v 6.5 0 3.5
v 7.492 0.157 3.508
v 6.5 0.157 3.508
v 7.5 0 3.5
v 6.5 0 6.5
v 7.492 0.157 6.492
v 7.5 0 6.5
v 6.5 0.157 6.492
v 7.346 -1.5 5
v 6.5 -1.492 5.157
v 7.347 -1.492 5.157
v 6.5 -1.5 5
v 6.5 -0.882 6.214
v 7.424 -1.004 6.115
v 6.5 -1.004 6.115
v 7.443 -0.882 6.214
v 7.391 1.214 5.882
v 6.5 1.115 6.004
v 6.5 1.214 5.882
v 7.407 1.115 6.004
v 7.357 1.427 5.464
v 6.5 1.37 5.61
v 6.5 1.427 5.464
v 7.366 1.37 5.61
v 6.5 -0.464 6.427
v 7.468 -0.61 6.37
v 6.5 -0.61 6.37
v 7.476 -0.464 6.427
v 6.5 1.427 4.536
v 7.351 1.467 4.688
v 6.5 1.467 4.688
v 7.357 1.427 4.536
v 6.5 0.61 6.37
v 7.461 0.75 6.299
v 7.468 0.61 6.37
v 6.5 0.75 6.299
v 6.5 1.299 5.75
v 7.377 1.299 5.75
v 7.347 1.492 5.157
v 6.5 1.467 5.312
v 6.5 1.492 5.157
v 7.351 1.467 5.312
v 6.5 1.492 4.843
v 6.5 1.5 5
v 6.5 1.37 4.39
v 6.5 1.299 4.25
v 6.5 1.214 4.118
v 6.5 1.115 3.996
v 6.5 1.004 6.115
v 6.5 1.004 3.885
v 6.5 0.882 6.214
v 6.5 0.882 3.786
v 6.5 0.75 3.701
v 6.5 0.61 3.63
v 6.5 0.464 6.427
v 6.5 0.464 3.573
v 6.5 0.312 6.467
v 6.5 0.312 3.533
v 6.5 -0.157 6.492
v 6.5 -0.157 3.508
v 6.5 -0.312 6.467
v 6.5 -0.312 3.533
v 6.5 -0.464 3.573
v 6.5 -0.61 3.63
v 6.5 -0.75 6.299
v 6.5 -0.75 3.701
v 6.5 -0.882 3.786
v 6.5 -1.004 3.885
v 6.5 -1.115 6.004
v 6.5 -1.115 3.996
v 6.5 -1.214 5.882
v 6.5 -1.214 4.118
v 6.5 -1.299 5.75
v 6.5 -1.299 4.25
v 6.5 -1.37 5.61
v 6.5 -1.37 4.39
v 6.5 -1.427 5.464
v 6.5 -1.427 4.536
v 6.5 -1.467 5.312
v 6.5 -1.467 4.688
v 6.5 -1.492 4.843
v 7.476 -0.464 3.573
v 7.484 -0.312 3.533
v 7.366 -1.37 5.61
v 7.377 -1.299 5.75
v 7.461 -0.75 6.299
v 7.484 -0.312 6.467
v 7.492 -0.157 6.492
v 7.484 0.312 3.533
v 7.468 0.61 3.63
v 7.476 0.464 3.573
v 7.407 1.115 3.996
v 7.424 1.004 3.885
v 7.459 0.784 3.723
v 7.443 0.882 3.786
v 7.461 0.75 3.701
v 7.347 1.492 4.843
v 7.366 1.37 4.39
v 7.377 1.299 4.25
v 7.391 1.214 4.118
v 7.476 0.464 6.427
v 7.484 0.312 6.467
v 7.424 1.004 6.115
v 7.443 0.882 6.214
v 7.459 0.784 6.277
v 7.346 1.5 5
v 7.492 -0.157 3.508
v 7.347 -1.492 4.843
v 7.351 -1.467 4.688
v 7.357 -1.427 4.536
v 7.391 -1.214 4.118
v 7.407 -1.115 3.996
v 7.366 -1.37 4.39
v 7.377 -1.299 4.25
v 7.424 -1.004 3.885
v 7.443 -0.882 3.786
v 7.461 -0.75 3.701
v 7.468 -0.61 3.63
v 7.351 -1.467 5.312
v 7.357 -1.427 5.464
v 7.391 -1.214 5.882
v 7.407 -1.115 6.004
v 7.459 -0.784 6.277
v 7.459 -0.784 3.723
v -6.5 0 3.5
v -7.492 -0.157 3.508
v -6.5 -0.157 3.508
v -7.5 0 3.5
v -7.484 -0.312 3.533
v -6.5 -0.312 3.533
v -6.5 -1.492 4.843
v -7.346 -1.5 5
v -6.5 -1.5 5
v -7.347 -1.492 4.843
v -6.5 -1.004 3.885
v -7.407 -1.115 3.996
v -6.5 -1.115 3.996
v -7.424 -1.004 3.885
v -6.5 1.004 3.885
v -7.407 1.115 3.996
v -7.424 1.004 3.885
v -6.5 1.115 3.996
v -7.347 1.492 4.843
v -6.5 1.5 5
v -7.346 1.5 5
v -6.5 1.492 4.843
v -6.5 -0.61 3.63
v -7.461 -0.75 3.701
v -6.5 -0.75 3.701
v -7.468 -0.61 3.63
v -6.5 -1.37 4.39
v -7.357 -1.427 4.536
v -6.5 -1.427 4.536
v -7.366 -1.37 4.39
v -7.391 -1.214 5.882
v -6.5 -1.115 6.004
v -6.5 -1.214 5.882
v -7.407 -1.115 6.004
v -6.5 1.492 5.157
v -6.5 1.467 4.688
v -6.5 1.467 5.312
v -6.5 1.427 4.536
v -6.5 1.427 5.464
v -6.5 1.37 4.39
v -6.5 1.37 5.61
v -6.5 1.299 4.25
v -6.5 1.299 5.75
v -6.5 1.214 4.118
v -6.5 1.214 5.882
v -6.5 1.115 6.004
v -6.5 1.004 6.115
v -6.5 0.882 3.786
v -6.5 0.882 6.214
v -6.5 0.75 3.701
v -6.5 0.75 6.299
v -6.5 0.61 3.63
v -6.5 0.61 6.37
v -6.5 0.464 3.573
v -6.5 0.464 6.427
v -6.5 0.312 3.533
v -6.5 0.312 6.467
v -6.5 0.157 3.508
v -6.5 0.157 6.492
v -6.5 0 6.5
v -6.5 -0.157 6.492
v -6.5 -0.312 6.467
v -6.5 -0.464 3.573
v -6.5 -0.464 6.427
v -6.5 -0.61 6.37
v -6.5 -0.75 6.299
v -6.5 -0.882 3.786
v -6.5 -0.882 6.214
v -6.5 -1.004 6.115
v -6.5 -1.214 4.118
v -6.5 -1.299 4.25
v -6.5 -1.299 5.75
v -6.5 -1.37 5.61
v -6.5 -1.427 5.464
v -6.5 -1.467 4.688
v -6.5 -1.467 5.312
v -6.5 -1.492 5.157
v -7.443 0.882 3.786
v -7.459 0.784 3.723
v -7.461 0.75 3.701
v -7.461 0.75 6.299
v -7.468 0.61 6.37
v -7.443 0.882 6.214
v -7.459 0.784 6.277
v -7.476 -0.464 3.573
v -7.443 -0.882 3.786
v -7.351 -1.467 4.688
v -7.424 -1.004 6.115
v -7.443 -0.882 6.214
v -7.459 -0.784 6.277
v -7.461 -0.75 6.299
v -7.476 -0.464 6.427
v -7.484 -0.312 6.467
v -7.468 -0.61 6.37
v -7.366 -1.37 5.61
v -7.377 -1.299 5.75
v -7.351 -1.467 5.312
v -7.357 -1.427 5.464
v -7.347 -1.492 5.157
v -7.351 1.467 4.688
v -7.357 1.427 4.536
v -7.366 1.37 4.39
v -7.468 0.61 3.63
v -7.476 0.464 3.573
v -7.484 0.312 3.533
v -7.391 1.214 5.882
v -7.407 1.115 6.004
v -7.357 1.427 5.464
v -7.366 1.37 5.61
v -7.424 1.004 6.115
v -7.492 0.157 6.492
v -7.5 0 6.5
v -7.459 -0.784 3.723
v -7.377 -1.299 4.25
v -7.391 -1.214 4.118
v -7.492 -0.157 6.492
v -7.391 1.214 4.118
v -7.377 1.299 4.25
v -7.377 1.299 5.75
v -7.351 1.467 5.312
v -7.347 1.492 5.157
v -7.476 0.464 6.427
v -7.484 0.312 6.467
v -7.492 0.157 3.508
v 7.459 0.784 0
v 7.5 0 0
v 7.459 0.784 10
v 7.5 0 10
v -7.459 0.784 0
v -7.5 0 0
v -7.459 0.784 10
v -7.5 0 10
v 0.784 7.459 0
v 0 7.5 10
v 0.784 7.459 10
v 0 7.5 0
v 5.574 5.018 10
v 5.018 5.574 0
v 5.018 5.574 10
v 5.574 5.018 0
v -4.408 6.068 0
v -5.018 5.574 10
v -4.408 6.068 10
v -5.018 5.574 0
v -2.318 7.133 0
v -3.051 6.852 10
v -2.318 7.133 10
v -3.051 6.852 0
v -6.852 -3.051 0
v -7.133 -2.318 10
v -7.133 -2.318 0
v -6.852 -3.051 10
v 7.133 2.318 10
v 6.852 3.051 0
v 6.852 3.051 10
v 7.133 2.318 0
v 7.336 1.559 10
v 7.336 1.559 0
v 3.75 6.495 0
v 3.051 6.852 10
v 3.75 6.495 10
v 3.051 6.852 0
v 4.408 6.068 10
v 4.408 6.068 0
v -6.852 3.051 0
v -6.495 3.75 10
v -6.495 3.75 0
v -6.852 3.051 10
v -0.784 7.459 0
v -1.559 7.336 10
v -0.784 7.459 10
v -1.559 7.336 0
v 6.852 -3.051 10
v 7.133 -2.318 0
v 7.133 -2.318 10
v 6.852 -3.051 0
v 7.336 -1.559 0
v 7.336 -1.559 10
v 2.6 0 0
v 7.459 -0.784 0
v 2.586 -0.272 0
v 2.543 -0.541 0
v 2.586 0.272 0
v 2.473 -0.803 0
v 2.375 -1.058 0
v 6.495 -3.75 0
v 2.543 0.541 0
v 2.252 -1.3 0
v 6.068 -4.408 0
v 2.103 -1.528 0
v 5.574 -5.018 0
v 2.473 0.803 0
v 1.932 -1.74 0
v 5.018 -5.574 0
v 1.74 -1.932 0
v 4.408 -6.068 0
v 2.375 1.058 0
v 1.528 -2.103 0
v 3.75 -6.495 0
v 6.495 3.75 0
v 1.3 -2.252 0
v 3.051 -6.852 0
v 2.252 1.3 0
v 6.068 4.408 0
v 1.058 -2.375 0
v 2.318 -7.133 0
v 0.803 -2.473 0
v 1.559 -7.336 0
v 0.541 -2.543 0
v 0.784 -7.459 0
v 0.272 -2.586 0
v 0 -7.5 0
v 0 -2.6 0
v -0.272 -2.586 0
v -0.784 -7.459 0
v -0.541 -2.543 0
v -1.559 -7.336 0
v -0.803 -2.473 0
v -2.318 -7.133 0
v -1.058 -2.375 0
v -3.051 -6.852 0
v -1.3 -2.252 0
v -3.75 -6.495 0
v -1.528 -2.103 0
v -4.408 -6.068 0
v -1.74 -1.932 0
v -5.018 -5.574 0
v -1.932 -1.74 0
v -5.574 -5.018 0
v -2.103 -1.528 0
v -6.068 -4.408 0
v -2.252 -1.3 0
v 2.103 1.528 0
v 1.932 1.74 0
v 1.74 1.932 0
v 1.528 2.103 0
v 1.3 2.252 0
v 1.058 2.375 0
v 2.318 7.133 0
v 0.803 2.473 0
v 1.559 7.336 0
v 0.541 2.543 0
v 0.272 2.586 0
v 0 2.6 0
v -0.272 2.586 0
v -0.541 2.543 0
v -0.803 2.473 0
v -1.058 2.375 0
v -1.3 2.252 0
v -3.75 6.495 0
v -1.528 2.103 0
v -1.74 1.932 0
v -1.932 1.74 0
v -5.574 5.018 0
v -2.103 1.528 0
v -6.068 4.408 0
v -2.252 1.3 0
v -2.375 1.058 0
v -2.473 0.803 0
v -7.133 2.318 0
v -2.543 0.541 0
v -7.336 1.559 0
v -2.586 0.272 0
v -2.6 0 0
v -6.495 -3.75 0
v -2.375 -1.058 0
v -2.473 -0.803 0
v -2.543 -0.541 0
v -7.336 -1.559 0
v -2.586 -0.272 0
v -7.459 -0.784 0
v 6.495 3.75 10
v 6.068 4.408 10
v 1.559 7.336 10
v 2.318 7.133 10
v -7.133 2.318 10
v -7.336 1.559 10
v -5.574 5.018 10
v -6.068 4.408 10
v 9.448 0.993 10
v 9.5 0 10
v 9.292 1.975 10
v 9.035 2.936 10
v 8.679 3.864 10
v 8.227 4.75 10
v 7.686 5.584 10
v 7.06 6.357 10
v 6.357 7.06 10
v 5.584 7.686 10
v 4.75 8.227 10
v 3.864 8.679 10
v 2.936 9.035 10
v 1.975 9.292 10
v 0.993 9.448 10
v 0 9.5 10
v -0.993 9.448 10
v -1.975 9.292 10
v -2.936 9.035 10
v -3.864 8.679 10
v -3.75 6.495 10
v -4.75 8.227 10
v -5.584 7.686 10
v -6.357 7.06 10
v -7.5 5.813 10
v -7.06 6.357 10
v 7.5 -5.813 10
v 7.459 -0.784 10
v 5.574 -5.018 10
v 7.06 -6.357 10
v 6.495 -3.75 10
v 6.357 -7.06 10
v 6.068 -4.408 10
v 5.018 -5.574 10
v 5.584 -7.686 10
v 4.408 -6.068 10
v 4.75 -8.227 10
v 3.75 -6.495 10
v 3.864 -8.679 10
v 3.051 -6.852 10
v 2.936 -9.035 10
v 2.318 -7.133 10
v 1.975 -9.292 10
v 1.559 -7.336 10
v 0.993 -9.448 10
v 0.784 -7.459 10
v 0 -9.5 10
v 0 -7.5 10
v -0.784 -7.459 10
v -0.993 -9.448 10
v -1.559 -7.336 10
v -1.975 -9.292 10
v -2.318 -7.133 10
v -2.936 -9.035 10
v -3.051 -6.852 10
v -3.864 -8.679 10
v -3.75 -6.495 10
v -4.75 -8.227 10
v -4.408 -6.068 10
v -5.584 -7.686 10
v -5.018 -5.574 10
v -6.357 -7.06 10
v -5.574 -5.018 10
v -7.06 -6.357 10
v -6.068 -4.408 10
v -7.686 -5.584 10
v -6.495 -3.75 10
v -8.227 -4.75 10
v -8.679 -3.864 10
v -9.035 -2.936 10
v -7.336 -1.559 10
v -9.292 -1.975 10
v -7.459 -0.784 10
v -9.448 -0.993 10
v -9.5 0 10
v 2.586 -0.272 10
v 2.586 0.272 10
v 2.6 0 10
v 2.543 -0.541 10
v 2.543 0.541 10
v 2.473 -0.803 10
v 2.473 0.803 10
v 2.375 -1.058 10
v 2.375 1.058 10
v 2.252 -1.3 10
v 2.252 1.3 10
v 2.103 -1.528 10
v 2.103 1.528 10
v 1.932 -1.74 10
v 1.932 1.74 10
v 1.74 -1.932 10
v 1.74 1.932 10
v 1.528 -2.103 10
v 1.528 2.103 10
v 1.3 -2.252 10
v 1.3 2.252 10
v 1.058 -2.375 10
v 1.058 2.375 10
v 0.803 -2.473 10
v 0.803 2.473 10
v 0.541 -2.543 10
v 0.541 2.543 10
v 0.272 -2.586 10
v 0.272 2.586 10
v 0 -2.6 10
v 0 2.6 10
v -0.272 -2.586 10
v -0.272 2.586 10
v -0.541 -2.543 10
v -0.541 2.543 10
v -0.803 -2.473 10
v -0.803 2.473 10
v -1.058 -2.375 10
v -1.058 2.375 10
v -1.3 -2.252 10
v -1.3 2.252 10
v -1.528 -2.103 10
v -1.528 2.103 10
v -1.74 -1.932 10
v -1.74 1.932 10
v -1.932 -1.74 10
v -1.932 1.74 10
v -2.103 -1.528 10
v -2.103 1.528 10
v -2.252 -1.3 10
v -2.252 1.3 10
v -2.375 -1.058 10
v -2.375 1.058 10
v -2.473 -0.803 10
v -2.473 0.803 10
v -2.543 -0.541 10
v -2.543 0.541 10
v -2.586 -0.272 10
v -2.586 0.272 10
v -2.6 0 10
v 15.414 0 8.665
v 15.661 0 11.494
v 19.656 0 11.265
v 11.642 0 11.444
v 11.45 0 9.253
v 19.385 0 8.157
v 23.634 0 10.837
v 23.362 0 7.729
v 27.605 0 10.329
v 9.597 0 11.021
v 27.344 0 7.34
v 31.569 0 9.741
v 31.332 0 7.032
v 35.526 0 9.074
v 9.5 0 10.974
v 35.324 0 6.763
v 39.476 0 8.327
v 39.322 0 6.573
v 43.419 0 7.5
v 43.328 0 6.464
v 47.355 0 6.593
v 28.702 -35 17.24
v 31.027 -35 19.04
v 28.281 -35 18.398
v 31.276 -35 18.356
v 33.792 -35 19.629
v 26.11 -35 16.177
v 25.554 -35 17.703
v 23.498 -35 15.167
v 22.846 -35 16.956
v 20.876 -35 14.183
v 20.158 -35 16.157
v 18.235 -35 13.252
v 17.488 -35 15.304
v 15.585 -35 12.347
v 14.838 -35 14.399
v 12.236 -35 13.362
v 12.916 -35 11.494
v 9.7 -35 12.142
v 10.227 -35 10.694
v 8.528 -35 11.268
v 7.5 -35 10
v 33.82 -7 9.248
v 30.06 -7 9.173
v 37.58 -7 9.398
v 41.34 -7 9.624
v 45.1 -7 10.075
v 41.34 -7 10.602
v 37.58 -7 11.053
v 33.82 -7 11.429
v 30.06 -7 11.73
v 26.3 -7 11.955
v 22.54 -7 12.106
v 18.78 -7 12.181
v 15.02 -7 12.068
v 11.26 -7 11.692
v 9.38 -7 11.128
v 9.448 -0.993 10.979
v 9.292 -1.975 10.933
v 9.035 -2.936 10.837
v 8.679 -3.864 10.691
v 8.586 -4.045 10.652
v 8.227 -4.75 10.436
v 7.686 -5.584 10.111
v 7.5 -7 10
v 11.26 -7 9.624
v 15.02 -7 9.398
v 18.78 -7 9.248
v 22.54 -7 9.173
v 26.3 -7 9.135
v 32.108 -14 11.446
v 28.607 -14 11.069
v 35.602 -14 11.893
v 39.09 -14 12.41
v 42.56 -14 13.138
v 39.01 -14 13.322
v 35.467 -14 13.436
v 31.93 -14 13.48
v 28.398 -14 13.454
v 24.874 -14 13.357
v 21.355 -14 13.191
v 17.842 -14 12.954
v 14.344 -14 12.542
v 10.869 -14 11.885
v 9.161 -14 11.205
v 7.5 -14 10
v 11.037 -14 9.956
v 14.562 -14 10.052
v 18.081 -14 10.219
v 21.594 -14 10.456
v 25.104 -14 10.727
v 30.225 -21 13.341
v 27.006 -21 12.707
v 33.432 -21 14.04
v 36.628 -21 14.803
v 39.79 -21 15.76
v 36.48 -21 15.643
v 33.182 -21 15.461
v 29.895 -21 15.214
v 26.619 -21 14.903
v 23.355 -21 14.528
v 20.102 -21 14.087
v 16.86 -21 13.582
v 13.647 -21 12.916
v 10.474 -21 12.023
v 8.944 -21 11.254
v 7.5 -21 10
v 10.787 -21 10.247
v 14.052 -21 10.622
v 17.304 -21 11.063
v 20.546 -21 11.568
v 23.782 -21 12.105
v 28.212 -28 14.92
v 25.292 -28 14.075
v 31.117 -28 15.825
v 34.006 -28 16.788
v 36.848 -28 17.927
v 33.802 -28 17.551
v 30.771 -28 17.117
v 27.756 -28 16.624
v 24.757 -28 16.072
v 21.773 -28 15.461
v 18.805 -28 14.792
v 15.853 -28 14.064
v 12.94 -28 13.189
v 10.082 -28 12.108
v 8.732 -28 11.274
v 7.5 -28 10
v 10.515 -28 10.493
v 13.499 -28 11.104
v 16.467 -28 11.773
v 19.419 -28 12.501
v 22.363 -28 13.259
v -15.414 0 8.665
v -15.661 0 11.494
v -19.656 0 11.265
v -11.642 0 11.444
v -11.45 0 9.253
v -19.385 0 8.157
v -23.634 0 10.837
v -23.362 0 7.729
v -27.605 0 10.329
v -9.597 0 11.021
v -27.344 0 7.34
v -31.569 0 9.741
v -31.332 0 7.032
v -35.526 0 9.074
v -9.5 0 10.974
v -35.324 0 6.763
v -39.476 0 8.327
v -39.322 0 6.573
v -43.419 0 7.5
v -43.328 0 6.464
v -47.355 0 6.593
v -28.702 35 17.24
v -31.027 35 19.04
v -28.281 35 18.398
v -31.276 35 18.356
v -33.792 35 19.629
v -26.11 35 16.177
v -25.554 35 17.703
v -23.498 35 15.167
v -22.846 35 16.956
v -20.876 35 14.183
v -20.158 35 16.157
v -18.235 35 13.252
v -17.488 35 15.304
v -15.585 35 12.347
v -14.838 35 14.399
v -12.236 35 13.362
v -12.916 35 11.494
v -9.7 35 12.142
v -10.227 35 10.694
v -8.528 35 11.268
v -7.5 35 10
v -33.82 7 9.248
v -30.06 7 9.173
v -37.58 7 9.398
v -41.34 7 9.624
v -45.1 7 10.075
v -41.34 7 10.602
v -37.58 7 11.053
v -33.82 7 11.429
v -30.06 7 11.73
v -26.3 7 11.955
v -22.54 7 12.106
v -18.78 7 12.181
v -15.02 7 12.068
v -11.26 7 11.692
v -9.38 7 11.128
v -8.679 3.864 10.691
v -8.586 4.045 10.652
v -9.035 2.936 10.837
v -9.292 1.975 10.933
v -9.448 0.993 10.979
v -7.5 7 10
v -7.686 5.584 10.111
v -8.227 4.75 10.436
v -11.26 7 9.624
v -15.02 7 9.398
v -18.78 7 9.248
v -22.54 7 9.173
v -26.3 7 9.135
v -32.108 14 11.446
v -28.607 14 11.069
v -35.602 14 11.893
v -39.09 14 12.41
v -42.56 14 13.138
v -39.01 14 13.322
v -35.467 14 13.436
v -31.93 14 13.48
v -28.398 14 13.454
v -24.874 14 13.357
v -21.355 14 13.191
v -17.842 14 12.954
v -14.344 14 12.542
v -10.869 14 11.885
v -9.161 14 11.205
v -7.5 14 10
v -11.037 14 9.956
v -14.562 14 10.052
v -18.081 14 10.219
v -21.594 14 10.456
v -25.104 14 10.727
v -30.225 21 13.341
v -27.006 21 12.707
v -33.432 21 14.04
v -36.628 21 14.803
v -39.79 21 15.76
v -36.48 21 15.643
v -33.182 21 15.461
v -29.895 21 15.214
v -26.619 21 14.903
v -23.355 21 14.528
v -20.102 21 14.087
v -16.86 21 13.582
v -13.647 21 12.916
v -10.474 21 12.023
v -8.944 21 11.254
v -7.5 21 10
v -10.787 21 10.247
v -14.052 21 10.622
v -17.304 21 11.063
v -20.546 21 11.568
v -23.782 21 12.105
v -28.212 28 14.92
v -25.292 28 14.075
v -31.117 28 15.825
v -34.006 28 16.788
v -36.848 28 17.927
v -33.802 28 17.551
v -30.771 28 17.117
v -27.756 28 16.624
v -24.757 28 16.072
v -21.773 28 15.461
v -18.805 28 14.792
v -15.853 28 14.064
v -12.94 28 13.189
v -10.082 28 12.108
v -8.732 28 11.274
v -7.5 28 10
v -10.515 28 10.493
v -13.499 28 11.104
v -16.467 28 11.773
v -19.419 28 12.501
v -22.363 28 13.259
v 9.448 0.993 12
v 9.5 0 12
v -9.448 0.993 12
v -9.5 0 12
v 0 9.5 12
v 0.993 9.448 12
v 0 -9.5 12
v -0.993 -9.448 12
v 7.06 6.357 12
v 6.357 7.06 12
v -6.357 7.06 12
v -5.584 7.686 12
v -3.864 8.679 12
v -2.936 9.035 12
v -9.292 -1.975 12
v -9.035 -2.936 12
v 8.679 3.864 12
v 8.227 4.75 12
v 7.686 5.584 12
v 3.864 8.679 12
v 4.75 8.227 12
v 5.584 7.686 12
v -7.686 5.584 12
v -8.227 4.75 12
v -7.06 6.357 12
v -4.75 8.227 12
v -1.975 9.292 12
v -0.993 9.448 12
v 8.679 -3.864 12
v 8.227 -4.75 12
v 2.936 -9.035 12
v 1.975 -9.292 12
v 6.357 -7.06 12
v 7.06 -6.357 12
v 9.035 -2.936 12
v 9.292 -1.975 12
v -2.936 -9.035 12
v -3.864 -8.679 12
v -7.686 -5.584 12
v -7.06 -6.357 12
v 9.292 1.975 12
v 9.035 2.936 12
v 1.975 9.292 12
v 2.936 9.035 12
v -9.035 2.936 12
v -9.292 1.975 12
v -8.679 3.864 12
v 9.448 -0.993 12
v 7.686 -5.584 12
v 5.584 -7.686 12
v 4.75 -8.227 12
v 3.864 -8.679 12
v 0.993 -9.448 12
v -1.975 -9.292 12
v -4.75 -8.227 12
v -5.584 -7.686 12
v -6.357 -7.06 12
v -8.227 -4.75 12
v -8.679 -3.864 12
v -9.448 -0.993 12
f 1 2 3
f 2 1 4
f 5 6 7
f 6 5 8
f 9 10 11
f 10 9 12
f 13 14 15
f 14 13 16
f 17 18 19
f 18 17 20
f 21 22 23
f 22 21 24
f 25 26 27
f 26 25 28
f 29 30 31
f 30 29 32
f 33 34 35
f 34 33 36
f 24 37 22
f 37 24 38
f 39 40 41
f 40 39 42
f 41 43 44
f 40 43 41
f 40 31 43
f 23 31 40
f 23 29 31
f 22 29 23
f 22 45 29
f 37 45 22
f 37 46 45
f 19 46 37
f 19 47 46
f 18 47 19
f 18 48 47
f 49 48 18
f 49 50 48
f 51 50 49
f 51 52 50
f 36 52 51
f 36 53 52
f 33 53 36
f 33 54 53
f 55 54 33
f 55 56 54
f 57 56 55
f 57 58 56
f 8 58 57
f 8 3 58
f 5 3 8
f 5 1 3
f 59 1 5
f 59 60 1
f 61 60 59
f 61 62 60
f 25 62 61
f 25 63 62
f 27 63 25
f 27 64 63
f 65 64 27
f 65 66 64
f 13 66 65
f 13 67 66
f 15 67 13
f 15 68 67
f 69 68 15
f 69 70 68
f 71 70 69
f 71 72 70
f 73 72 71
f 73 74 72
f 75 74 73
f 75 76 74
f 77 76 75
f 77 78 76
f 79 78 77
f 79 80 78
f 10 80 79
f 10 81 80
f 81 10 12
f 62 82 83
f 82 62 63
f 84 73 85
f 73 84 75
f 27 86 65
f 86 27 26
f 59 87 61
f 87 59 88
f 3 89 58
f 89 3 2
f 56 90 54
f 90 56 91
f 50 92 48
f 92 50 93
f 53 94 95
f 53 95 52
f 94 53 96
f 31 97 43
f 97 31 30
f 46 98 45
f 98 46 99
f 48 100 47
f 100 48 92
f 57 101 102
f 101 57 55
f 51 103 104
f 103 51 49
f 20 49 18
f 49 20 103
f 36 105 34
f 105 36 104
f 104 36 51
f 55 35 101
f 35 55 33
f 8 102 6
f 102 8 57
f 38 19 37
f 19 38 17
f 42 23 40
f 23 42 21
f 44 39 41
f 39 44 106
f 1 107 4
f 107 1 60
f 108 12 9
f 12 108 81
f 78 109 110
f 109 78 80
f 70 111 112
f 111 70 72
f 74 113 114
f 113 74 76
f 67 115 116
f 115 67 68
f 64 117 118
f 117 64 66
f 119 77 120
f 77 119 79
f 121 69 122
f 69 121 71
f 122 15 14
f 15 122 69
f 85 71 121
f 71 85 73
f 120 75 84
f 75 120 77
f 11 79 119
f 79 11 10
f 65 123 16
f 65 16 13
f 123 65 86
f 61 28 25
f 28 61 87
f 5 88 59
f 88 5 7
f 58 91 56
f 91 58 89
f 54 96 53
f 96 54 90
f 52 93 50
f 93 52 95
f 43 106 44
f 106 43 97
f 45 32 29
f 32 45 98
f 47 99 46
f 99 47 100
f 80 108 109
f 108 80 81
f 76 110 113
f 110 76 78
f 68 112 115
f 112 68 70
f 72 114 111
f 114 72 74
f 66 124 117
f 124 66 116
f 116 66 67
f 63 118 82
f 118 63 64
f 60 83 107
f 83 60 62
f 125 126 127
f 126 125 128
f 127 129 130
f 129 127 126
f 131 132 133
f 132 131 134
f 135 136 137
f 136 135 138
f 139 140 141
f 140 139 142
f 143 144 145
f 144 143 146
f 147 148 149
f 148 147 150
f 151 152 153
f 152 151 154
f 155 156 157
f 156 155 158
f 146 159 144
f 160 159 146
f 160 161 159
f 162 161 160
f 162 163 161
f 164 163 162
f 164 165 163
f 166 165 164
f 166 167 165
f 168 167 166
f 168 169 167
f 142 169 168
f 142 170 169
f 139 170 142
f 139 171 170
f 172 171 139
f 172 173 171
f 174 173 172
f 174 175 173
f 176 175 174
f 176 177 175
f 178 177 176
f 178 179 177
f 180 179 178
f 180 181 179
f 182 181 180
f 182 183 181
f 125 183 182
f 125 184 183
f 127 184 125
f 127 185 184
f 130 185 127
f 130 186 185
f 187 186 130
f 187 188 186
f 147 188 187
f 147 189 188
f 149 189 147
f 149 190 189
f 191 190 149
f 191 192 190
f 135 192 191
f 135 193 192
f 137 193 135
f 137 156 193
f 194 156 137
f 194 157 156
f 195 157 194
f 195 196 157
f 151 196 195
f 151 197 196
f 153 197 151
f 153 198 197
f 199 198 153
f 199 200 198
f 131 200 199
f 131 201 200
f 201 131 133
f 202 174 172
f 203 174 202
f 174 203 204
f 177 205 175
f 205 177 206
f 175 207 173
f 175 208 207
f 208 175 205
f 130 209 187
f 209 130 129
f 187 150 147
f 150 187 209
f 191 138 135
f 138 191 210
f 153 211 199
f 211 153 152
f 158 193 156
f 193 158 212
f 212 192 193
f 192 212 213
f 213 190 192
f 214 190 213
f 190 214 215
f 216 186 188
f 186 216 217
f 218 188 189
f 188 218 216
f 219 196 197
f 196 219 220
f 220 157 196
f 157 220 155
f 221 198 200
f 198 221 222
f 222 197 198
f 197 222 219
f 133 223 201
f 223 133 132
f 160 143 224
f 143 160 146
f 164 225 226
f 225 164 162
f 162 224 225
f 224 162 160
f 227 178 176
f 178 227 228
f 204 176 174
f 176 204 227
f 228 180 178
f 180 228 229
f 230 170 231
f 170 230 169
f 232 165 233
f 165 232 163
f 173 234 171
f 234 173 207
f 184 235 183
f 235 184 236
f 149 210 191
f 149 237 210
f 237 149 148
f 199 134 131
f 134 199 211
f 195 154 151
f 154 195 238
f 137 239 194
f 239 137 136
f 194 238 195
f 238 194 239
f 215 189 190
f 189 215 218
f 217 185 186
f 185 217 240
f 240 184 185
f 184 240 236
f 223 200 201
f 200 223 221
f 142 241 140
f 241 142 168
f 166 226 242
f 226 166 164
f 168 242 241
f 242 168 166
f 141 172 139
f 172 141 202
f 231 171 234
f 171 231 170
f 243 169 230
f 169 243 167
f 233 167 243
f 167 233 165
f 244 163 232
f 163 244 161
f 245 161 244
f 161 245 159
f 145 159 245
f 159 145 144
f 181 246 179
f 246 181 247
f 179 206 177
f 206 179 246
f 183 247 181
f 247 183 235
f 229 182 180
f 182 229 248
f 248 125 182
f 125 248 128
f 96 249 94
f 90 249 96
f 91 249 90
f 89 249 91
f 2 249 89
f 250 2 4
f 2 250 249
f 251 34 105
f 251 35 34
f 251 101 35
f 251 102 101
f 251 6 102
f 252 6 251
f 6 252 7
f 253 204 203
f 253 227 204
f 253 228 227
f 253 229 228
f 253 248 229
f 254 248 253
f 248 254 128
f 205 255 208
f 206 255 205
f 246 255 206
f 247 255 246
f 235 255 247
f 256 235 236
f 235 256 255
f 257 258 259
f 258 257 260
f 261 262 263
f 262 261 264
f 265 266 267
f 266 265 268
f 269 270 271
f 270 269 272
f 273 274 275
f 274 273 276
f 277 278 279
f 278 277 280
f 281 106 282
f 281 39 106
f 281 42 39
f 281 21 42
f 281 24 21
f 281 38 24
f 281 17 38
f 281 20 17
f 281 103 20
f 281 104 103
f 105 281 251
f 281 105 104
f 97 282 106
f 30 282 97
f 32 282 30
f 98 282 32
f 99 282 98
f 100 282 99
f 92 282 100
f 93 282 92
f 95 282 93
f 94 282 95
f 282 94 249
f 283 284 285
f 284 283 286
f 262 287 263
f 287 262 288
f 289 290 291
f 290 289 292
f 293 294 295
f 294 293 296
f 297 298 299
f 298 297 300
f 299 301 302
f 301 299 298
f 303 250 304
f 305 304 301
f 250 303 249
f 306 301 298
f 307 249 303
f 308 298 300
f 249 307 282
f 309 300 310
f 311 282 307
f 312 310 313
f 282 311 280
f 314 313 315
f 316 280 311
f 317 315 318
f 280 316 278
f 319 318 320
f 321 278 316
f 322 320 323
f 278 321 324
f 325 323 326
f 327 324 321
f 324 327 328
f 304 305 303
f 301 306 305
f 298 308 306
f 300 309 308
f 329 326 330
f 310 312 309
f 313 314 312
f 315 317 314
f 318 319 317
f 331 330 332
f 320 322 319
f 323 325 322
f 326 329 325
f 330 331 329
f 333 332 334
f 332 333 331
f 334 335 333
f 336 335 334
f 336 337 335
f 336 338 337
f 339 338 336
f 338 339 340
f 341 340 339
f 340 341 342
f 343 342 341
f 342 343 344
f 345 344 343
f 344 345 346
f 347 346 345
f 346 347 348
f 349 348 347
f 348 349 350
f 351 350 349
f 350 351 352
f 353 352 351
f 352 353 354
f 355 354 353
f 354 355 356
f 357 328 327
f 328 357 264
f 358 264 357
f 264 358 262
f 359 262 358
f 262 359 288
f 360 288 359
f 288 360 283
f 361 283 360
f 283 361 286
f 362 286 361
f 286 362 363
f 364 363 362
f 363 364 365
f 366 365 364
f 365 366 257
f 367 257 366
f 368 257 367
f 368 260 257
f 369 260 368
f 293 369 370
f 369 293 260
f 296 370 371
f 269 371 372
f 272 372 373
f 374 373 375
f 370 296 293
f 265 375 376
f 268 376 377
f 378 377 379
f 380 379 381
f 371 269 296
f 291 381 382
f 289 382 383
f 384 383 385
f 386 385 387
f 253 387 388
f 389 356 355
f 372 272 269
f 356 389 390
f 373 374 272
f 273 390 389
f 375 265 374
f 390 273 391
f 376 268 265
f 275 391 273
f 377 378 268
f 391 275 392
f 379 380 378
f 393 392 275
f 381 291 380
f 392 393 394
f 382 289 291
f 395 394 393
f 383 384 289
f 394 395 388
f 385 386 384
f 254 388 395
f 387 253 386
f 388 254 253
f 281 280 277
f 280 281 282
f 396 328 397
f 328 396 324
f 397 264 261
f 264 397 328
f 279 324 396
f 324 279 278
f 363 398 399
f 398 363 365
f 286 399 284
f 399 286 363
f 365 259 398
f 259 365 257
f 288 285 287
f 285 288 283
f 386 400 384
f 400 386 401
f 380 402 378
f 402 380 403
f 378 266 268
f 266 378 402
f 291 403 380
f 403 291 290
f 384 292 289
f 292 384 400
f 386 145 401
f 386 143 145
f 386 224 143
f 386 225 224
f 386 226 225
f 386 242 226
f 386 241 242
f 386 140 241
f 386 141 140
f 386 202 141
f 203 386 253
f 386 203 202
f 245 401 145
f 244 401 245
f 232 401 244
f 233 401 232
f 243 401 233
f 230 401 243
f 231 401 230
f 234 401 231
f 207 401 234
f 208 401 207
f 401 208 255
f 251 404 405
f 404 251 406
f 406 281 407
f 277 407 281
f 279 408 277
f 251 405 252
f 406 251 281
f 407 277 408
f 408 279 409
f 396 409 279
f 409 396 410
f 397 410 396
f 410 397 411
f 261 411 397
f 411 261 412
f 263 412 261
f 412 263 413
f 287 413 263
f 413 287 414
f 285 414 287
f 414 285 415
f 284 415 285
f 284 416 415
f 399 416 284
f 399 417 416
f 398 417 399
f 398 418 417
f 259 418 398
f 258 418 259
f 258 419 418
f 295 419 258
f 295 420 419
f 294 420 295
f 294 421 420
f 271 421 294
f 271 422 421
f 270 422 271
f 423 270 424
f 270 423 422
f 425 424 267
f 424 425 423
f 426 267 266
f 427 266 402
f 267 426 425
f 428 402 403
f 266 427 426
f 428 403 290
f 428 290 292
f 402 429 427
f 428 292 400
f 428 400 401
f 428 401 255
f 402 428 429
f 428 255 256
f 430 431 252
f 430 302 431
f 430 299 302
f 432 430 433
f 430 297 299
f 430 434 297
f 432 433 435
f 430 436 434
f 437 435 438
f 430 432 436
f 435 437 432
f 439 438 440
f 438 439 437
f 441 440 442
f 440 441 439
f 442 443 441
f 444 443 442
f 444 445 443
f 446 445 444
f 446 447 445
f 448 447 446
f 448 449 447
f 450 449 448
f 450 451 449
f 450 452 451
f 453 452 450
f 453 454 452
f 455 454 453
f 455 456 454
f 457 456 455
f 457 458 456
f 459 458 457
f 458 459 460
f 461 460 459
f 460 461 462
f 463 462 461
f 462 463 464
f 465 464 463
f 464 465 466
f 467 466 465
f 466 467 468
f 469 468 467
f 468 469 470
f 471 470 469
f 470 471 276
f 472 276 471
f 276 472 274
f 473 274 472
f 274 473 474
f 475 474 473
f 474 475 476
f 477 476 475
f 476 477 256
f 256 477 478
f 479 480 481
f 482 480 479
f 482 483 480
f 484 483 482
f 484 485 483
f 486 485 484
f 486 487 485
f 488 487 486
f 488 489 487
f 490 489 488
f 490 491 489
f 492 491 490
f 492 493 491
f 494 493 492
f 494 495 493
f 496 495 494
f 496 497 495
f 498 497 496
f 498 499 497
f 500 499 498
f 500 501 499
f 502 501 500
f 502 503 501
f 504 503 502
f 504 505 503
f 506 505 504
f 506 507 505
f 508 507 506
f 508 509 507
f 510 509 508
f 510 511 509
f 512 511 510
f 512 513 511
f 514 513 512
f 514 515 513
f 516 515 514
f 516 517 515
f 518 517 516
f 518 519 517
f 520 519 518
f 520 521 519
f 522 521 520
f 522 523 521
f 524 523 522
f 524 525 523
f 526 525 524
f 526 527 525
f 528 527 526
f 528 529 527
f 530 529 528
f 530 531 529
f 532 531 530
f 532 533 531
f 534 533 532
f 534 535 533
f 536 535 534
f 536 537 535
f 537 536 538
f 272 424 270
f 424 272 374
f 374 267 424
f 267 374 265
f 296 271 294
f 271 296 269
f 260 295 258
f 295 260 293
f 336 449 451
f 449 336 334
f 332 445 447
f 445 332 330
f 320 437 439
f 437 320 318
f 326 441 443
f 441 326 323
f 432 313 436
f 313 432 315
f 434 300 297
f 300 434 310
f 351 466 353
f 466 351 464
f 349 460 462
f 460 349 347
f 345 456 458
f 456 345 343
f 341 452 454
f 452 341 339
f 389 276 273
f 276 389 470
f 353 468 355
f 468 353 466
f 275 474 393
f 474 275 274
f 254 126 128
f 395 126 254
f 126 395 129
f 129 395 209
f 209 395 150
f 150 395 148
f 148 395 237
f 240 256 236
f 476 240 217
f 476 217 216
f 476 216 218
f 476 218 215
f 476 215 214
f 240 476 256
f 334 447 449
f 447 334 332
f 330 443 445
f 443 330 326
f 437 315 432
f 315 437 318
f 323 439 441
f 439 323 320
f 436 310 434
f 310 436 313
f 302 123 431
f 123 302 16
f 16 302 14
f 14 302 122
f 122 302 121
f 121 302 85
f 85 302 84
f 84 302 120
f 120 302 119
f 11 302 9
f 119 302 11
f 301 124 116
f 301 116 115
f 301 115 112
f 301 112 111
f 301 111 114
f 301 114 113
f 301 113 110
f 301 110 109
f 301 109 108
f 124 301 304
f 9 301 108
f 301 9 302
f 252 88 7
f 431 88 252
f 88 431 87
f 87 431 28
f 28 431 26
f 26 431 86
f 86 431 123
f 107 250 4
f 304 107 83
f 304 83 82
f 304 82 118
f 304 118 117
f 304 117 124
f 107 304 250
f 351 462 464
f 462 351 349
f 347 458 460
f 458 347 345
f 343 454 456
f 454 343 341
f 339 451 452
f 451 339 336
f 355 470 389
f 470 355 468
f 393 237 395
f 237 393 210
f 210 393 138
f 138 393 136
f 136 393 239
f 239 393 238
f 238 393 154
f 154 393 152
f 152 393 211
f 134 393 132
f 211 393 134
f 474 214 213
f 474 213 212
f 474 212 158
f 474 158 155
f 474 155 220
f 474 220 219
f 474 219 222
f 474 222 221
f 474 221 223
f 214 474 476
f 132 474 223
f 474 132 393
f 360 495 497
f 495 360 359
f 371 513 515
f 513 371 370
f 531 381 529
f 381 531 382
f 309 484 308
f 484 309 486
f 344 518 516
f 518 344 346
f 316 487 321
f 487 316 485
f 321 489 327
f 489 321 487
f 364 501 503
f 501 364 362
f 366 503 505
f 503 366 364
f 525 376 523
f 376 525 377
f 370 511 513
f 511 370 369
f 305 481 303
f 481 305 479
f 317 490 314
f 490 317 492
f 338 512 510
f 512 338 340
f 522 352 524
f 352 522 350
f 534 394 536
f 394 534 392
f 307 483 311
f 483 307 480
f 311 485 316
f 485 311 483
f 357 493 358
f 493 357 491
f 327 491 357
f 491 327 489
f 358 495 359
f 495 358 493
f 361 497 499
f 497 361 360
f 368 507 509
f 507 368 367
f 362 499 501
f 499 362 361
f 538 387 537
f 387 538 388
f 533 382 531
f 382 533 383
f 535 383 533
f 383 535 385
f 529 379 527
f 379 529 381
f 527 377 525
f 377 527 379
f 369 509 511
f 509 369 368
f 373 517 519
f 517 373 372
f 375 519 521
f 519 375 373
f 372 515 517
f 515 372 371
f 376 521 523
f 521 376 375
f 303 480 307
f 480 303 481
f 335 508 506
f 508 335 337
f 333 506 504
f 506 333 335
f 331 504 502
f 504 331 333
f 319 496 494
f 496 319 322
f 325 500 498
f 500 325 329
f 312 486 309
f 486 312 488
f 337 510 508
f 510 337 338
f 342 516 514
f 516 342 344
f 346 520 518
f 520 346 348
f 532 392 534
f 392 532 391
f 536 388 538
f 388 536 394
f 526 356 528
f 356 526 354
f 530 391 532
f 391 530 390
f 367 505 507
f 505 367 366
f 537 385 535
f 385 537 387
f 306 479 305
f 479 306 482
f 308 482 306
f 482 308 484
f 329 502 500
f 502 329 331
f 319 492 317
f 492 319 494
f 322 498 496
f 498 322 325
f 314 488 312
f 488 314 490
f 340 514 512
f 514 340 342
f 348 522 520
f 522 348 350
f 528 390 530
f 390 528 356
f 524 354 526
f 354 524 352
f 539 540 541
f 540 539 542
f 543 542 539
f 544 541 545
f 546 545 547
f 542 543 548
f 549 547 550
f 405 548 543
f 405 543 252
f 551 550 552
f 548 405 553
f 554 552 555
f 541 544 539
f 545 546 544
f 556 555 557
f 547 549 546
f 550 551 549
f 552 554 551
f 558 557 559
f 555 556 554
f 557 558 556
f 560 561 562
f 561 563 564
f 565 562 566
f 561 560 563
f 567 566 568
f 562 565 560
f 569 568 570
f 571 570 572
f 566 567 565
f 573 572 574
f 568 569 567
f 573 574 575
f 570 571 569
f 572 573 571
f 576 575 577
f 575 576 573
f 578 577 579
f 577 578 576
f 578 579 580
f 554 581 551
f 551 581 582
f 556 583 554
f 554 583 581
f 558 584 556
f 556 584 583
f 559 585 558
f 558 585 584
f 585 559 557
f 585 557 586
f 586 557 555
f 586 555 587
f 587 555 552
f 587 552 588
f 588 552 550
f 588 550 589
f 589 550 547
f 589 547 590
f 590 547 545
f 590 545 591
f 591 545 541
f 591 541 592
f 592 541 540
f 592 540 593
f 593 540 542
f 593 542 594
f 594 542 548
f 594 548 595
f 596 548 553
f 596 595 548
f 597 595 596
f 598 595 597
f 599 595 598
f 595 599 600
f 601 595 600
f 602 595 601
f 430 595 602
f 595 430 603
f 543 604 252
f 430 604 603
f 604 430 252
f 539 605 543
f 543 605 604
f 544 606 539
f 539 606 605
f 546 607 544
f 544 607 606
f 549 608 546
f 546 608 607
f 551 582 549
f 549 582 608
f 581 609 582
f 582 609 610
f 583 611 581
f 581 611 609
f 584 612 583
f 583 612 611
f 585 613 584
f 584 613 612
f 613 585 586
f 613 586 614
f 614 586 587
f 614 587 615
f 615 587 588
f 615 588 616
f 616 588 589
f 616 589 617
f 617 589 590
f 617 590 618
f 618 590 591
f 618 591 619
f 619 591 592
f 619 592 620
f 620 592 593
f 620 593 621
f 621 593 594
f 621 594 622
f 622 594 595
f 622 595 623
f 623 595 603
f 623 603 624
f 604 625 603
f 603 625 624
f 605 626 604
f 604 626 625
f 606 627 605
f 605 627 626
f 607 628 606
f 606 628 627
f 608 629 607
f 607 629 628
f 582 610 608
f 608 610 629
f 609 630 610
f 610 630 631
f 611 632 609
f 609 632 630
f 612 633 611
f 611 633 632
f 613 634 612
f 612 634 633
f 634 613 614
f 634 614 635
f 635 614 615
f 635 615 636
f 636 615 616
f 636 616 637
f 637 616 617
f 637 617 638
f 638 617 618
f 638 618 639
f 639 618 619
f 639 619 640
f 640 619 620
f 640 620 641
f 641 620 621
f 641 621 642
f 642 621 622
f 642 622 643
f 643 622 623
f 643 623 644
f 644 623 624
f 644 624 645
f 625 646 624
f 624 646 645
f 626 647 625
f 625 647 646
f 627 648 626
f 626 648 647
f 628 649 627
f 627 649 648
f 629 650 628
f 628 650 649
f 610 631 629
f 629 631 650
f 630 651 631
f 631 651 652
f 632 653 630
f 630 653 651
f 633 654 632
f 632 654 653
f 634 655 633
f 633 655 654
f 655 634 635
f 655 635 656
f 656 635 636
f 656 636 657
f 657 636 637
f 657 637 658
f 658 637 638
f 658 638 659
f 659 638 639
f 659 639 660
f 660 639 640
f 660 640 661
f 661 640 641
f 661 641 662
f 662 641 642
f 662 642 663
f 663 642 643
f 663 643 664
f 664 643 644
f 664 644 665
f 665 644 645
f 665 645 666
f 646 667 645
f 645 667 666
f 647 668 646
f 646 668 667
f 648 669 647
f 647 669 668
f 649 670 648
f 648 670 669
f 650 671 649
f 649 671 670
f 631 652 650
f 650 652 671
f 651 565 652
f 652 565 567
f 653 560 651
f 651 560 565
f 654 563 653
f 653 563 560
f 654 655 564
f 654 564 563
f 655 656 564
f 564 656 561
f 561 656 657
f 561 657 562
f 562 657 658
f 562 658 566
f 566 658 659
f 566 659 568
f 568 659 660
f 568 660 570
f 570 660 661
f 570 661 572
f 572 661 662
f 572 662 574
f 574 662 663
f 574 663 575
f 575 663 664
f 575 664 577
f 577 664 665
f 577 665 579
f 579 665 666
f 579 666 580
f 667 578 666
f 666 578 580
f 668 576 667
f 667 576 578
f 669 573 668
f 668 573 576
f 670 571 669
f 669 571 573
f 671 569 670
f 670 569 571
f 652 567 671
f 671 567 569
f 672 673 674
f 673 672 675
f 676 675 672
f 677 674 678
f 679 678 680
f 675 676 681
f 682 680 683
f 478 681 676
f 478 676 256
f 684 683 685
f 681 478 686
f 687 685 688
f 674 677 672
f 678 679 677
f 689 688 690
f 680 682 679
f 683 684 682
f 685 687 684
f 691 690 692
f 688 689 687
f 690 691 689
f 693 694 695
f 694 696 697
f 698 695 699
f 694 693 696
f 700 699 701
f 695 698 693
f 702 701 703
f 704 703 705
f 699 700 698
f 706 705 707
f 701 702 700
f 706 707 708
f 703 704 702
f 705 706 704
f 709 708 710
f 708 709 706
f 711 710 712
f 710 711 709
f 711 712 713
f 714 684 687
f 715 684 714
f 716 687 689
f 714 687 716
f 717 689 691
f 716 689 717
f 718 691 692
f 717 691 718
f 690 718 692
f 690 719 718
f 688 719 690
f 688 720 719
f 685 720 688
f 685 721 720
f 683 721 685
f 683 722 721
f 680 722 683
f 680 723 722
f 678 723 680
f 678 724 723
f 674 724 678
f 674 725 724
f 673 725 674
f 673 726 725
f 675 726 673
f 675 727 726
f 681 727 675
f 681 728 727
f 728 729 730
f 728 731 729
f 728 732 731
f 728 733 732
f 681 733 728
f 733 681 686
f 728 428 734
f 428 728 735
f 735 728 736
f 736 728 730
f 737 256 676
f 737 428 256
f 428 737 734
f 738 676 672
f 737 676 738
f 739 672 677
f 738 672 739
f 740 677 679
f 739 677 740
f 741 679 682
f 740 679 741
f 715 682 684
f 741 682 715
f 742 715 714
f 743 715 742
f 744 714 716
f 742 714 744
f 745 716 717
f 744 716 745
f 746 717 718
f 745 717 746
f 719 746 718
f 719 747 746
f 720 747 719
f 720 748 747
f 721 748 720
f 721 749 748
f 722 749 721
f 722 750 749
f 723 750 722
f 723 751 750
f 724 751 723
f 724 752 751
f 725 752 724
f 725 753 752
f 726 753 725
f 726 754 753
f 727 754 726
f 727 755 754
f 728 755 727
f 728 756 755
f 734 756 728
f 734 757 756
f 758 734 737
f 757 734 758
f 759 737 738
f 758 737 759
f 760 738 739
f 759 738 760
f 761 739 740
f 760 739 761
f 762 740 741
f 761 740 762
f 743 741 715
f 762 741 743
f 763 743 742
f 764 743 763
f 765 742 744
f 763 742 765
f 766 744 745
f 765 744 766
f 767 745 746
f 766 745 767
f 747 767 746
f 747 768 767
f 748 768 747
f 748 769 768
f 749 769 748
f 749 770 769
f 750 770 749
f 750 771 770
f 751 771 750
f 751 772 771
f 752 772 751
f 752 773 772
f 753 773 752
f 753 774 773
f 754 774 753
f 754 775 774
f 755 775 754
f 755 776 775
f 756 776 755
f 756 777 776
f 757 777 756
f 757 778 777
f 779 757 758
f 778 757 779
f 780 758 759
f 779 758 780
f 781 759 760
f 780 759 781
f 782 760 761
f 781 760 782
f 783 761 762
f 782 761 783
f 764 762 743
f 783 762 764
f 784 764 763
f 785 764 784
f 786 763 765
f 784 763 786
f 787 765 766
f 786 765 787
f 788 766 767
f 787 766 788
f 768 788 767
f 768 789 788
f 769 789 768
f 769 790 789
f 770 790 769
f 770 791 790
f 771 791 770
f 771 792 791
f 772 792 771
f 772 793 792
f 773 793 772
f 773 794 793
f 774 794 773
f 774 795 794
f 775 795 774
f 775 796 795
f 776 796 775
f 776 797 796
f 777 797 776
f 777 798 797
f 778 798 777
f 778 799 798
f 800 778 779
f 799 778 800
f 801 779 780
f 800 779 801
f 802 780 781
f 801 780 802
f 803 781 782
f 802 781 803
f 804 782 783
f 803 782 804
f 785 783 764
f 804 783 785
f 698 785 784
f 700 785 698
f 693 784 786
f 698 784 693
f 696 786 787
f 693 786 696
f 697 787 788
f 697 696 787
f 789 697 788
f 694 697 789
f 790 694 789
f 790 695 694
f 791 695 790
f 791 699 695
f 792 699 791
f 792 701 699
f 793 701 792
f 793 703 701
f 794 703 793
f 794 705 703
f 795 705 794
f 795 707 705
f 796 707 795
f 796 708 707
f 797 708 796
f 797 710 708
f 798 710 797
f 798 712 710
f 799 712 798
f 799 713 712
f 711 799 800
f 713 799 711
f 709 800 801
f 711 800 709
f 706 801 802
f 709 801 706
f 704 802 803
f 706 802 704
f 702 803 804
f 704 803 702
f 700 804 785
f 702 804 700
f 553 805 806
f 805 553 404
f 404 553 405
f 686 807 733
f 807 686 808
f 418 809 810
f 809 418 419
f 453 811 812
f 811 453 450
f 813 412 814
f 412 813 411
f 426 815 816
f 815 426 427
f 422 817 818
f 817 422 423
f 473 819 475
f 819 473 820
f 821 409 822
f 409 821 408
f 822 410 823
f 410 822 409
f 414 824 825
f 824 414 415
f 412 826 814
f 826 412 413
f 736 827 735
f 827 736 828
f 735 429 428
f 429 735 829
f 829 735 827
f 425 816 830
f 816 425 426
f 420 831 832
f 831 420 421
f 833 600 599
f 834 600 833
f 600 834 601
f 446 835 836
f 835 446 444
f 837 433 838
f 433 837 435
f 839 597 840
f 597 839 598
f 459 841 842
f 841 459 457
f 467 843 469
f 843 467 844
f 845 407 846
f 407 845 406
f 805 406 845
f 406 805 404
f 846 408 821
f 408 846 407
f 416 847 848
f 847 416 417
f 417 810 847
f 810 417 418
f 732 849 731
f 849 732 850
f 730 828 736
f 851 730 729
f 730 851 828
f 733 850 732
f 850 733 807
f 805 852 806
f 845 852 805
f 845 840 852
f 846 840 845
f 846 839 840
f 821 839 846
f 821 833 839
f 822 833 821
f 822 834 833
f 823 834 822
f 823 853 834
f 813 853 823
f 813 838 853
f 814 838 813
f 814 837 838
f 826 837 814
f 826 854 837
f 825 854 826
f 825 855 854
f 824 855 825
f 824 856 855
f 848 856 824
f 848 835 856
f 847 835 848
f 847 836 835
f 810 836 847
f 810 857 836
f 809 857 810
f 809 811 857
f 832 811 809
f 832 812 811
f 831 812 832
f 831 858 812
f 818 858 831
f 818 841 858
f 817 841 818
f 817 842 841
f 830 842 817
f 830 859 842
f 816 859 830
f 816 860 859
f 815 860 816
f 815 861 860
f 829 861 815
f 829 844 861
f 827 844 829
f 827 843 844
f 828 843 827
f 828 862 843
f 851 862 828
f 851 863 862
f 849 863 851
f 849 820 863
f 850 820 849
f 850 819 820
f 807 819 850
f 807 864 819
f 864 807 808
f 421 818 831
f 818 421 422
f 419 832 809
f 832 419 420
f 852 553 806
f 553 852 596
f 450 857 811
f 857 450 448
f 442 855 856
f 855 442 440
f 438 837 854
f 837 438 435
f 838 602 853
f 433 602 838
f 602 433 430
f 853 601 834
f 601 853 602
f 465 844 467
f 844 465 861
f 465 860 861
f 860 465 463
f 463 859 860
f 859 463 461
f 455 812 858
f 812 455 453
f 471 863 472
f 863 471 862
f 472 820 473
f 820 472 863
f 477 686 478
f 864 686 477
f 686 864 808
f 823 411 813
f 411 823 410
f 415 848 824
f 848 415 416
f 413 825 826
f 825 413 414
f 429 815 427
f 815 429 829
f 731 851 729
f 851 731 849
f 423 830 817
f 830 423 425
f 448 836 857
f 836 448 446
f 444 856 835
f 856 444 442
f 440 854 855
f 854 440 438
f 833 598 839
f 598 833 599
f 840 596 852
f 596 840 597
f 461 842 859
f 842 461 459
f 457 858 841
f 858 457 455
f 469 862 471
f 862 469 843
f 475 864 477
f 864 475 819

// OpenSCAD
/*
 * COMPLETE MOTOR + IMPELLER ASSEMBLY
 * For CFD fluid testing and visualization
 * 
 * This model includes:
 *   - Brushless motor (2204-2206 size)
 *   - Motor shaft (5mm)
 *   - Impeller hub
 *   - 3 impeller variants (bladeless, AI-blades, hybrid)
 *   - Mounting plate
 * 
 * Usage:
 *   - Render full assembly: F6
 *   - Export for CFD: Set EXPORT_MODE = "impeller_only"
 *   - Change design: Set IMPELLER_TYPE = "bladeless" | "bladed" | "hybrid"
 */

// ============================================================================
// CONFIGURATION PARAMETERS (AI-Optimizable)
// ============================================================================

// General Settings
$fn = 60;  // Resolution for CFD export (increase to 100 for final)

// Export Mode
EXPORT_MODE = "impeller_only";  // Options: "full_assembly", "impeller_only", "motor_only"

// Impeller Type
IMPELLER_TYPE = "bladed";  // Options: "bladeless", "bladed", "hybrid"

// Motor Specifications (2204-2206 brushless)
MOTOR_DIAMETER = 28;         // mm
MOTOR_HEIGHT = 25;           // mm
MOTOR_SHAFT_DIAMETER = 5;    // mm (standard)
MOTOR_SHAFT_LENGTH = 15;     // mm (extends above motor)
MOTOR_MOUNT_PATTERN = 16;    // mm (16x16 or 19x19 common)
MOTOR_SCREW_DIAMETER = 3;    // M3 screws

// Impeller Parameters - BLADELESS
BLADELESS_OUTER_DIAMETER = 90;    // mm
BLADELESS_AIR_GAP = 0.8;          // mm (optimize: 0.6-1.2)
BLADELESS_THROAT_RATIO = 0.72;    // (optimize: 0.65-0.80)
BLADELESS_EXPANSION_ANGLE = 18;   // degrees (optimize: 12-25)
BLADELESS_RING_THICKNESS = 3;     // mm (optimize: 2-4)
BLADELESS_HEIGHT = 24;            // mm

// Impeller Parameters - BLADED
BLADED_DIAMETER = 85;
BLADED_HUB_DIAMETER = 15;         // mm (optimize: 12-20)
BLADED_BLADE_COUNT = 2;
BLADED_ROOT_CHORD = 40;
BLADED_TIP_CHORD_RATIO = 0.7;    // (optimize: 0.6-0.8)
BLADED_BLADE_THICKNESS = 2;       // mm (optimize: 1.5-3)
BLADED_BLADE_TWIST = -25;
BLADED_ATTACK_ANGLE = -5;
BLADED_BLADE_HEIGHT = 12;         // mm (optimize: 10-15)

// Hub Parameters
HUB_DIAMETER = 15;
HUB_HEIGHT = 10;
HUB_SET_SCREW_DIAMETER = 3;  // M3 set screw

// Mounting Plate
PLATE_SIZE = 50;
PLATE_THICKNESS = 3;

// ============================================================================
// MOTOR MODEL
// ============================================================================

module brushless_motor_2204() {
    color("DarkSlateGray") {
        // Motor can (bell)
        difference() {
            cylinder(h=MOTOR_HEIGHT, d=MOTOR_DIAMETER);
            
            // Hollow inside (weight reduction visualization)
            translate([0, 0, -0.5])
                cylinder(h=MOTOR_HEIGHT - 5, d=MOTOR_DIAMETER - 4);
            
            // Mounting holes
            for(i = [0:3]) {
                rotate([0, 0, i * 90])
                    translate([MOTOR_MOUNT_PATTERN/2, 0, MOTOR_HEIGHT/2])
                        rotate([90, 0, 0])
                            cylinder(h=MOTOR_DIAMETER, d=MOTOR_SCREW_DIAMETER, center=true);
            }
        }
        
        // Motor base
        translate([0, 0, -3])
            cylinder(h=3, d=MOTOR_DIAMETER - 2);
    }
    
    // Motor shaft
    color("Silver")
        translate([0, 0, MOTOR_HEIGHT])
            cylinder(h=MOTOR_SHAFT_LENGTH, d=MOTOR_SHAFT_DIAMETER);
    
    // Shaft tip (for hub attachment)
    color("Silver")
        translate([0, 0, MOTOR_HEIGHT + MOTOR_SHAFT_LENGTH])
            cylinder(h=2, d=MOTOR_SHAFT_DIAMETER - 0.5);
}

// ============================================================================
// IMPELLER HUB
// ============================================================================

module impeller_hub() {
    color("Gray")
    difference() {
        // Hub body
        cylinder(h=HUB_HEIGHT, d=HUB_DIAMETER);
        
        // Shaft hole (5mm + 0.2mm clearance)
        translate([0, 0, -0.5])
            cylinder(h=HUB_HEIGHT + 1, d=MOTOR_SHAFT_DIAMETER + 0.2);
        
        // Set screw holes (2x for balance)
        for(i = [0:1]) {
            rotate([0, 0, i * 180])
                translate([HUB_DIAMETER/2 - 1, 0, HUB_HEIGHT/2])
                    rotate([0, 90, 0])
                        cylinder(h=5, d=HUB_SET_SCREW_DIAMETER);
        }
    }
}

// ============================================================================
// BLADELESS IMPELLER (Dyson-style)
// ============================================================================

module bladeless_impeller() {
    outer_r = BLADELESS_OUTER_DIAMETER / 2;
    throat_r = outer_r * BLADELESS_THROAT_RATIO;
    gap = BLADELESS_AIR_GAP;
    
    color("SkyBlue", 0.7)
    difference() {
        // Outer ring
        rotate_extrude()
            translate([outer_r - BLADELESS_RING_THICKNESS/2, BLADELESS_HEIGHT/2, 0])
                circle(d=BLADELESS_RING_THICKNESS + BLADELESS_HEIGHT);
        
        // Inner air gap (critical for Coanda effect)
        rotate_extrude()
            translate([outer_r - gap - BLADELESS_RING_THICKNESS/2, BLADELESS_HEIGHT/2, 0])
                circle(d=BLADELESS_RING_THICKNESS + BLADELESS_HEIGHT - 2*gap);
    }
    
    // Base plate (connects to hub)
    color("SkyBlue", 0.7)
    translate([0, 0, -2])
        difference() {
            cylinder(h=2, d=outer_r * 2);
            translate([0, 0, -0.5])
                cylinder(h=3, d=HUB_DIAMETER + 1);
        }
    
    // Air inlet (bell-shaped for smooth flow)
    color("SkyBlue", 0.7)
    translate([0, 0, -2]) {
        difference() {
            cylinder(h=15, d1=throat_r * 2, d2=outer_r * 1.8);
            translate([0, 0, -0.5])
                cylinder(h=16, d1=throat_r * 2 - 3, d2=outer_r * 1.8 - 3);
        }
    }
}

// ============================================================================
// AI-OPTIMIZED BLADED IMPELLER (NACA 2412 profile)
// ============================================================================

module naca_2412_blade(chord, height, twist_angle, attack_angle) {
    // Simplified NACA 2412 airfoil profile
    // Using parametric approximation for 3D printing
    
    color("LightSteelBlue", 0.8)
    linear_extrude(height=height, twist=twist_angle, scale=BLADED_TIP_CHORD_RATIO) {
        rotate([0, 0, attack_angle])
        polygon([
            // Upper surface (cambered)
            [0, 0],
            [chord * 0.05, chord * 0.03],
            [chord * 0.1, chord * 0.045],
            [chord * 0.2, chord * 0.055],
            [chord * 0.3, chord * 0.058],
            [chord * 0.4, chord * 0.056],
            [chord * 0.5, chord * 0.052],
            [chord * 0.6, chord * 0.046],
            [chord * 0.7, chord * 0.038],
            [chord * 0.8, chord * 0.028],
            [chord * 0.9, chord * 0.016],
            [chord * 1.0, chord * 0.002],
            // Lower surface (less cambered)
            [chord * 0.9, -chord * 0.010],
            [chord * 0.8, -chord * 0.016],
            [chord * 0.7, -chord * 0.020],
            [chord * 0.6, -chord * 0.022],
            [chord * 0.5, -chord * 0.023],
            [chord * 0.4, -chord * 0.022],
            [chord * 0.3, -chord * 0.020],
            [chord * 0.2, -chord * 0.016],
            [chord * 0.1, -chord * 0.010],
            [chord * 0.05, -chord * 0.005],
        ]);
    }
}

module bladed_impeller() {
    // Blades
    for(i = [0 : BLADED_BLADE_COUNT - 1]) {
        rotate([0, 0, i * (360 / BLADED_BLADE_COUNT)])
            translate([BLADED_HUB_DIAMETER/2, 0, 0])
                rotate([90, 0, 0])
                    naca_2412_blade(
                        BLADED_ROOT_CHORD, 
                        (BLADED_DIAMETER - BLADED_HUB_DIAMETER) / 2,
                        BLADED_BLADE_TWIST,
                        BLADED_ATTACK_ANGLE
                    );
    }
    
    // Hub disk (connects blades)
    color("LightSteelBlue", 0.8)
    cylinder(h=2, d=BLADED_HUB_DIAMETER + 4);
}

// ============================================================================
// HYBRID IMPELLER (Blades inside bladeless ring)
// ============================================================================

module hybrid_impeller() {
    // Outer bladeless ring
    bladeless_impeller();
    
    // Inner bladed impeller (scaled down to fit)
    scale([0.85, 0.85, 1])
        bladed_impeller();
}

// ============================================================================
// MOUNTING PLATE
// ============================================================================

module mounting_plate() {
    color("DimGray")
    difference() {
        // Base plate
        translate([-PLATE_SIZE/2, -PLATE_SIZE/2, 0])
            cube([PLATE_SIZE, PLATE_SIZE, PLATE_THICKNESS]);
        
        // Center hole for motor shaft
        translate([0, 0, -0.5])
            cylinder(h=PLATE_THICKNESS + 1, d=MOTOR_DIAMETER + 2);
        
        // Motor mounting holes
        for(i = [0:3]) {
            rotate([0, 0, i * 90])
                translate([MOTOR_MOUNT_PATTERN/2, 0, -0.5])
                    cylinder(h=PLATE_THICKNESS + 1, d=MOTOR_SCREW_DIAMETER);
        }
    }
}

// ============================================================================
// COMPLETE ASSEMBLY
// ============================================================================

module complete_assembly() {
    // Mounting plate (bottom)
    translate([0, 0, -PLATE_THICKNESS])
        mounting_plate();
    
    // Motor
    translate([0, 0, 0])
        brushless_motor_2204();
    
    // Hub (on shaft)
    translate([0, 0, MOTOR_HEIGHT + MOTOR_SHAFT_LENGTH - 2])
        impeller_hub();
    
    // Impeller (on hub)
    translate([0, 0, MOTOR_HEIGHT + MOTOR_SHAFT_LENGTH + HUB_HEIGHT]) {
        if (IMPELLER_TYPE == "bladeless") {
            bladeless_impeller();
        } else if (IMPELLER_TYPE == "bladed") {
            bladed_impeller();
        } else if (IMPELLER_TYPE == "hybrid") {
            hybrid_impeller();
        }
    }
}

// ============================================================================
// RENDER BASED ON EXPORT MODE
// ============================================================================

if (EXPORT_MODE == "full_assembly") {
    complete_assembly();
} 
else if (EXPORT_MODE == "impeller_only") {
    // For CFD testing - impeller + hub only
    impeller_hub();
    translate([0, 0, HUB_HEIGHT]) {
        if (IMPELLER_TYPE == "bladeless") {
            bladeless_impeller();
        } else if (IMPELLER_TYPE == "bladed") {
            bladed_impeller();
        } else if (IMPELLER_TYPE == "hybrid") {
            hybrid_impeller();
        }
    }
}
else if (EXPORT_MODE == "motor_only") {
    brushless_motor_2204();
}

// ============================================================================
// ANNOTATIONS FOR VISUALIZATION
// ============================================================================

// Uncomment to show dimensions
/*
color("Red", 0.3)
translate([BLADED_DIAMETER/2 + 10, 0, 20])
    text(str("Ø", BLADED_DIAMETER, "mm"), size=5, halign="left");

color("Green", 0.3)
translate([0, BLADED_DIAMETER/2 + 10, 20])
    text(str(BLADED_BLADE_COUNT, " blades"), size=5, halign="center");
*/

// ============================================================================
// EXPORT NOTES
// ============================================================================

/*
 * TO EXPORT FOR CFD TESTING:
 * 
 * 1. Set EXPORT_MODE = "impeller_only"
 * 2. Set IMPELLER_TYPE = "bladeless" (or "bladed" or "hybrid")
 * 3. Press F6 to render
 * 4. File → Export → Export as STL
 * 5. Use filename: impeller_bladeless_fn60.stl
 * 
 * FOR OPTIMIZATION:
 * - Modify parameters at top (marked with "optimize:")
 * - Re-render and export
 * - Upload to SimScale for CFD
 * - Compare results
 * 
 * RECOMMENDED CFD SETTINGS:
 * - Solver: k-omega SST
 * - RPM: 5000, 7000, 9000
 * - Mesh: 3-5M cells
 * - Boundary: Rotating zone on impeller
 */
